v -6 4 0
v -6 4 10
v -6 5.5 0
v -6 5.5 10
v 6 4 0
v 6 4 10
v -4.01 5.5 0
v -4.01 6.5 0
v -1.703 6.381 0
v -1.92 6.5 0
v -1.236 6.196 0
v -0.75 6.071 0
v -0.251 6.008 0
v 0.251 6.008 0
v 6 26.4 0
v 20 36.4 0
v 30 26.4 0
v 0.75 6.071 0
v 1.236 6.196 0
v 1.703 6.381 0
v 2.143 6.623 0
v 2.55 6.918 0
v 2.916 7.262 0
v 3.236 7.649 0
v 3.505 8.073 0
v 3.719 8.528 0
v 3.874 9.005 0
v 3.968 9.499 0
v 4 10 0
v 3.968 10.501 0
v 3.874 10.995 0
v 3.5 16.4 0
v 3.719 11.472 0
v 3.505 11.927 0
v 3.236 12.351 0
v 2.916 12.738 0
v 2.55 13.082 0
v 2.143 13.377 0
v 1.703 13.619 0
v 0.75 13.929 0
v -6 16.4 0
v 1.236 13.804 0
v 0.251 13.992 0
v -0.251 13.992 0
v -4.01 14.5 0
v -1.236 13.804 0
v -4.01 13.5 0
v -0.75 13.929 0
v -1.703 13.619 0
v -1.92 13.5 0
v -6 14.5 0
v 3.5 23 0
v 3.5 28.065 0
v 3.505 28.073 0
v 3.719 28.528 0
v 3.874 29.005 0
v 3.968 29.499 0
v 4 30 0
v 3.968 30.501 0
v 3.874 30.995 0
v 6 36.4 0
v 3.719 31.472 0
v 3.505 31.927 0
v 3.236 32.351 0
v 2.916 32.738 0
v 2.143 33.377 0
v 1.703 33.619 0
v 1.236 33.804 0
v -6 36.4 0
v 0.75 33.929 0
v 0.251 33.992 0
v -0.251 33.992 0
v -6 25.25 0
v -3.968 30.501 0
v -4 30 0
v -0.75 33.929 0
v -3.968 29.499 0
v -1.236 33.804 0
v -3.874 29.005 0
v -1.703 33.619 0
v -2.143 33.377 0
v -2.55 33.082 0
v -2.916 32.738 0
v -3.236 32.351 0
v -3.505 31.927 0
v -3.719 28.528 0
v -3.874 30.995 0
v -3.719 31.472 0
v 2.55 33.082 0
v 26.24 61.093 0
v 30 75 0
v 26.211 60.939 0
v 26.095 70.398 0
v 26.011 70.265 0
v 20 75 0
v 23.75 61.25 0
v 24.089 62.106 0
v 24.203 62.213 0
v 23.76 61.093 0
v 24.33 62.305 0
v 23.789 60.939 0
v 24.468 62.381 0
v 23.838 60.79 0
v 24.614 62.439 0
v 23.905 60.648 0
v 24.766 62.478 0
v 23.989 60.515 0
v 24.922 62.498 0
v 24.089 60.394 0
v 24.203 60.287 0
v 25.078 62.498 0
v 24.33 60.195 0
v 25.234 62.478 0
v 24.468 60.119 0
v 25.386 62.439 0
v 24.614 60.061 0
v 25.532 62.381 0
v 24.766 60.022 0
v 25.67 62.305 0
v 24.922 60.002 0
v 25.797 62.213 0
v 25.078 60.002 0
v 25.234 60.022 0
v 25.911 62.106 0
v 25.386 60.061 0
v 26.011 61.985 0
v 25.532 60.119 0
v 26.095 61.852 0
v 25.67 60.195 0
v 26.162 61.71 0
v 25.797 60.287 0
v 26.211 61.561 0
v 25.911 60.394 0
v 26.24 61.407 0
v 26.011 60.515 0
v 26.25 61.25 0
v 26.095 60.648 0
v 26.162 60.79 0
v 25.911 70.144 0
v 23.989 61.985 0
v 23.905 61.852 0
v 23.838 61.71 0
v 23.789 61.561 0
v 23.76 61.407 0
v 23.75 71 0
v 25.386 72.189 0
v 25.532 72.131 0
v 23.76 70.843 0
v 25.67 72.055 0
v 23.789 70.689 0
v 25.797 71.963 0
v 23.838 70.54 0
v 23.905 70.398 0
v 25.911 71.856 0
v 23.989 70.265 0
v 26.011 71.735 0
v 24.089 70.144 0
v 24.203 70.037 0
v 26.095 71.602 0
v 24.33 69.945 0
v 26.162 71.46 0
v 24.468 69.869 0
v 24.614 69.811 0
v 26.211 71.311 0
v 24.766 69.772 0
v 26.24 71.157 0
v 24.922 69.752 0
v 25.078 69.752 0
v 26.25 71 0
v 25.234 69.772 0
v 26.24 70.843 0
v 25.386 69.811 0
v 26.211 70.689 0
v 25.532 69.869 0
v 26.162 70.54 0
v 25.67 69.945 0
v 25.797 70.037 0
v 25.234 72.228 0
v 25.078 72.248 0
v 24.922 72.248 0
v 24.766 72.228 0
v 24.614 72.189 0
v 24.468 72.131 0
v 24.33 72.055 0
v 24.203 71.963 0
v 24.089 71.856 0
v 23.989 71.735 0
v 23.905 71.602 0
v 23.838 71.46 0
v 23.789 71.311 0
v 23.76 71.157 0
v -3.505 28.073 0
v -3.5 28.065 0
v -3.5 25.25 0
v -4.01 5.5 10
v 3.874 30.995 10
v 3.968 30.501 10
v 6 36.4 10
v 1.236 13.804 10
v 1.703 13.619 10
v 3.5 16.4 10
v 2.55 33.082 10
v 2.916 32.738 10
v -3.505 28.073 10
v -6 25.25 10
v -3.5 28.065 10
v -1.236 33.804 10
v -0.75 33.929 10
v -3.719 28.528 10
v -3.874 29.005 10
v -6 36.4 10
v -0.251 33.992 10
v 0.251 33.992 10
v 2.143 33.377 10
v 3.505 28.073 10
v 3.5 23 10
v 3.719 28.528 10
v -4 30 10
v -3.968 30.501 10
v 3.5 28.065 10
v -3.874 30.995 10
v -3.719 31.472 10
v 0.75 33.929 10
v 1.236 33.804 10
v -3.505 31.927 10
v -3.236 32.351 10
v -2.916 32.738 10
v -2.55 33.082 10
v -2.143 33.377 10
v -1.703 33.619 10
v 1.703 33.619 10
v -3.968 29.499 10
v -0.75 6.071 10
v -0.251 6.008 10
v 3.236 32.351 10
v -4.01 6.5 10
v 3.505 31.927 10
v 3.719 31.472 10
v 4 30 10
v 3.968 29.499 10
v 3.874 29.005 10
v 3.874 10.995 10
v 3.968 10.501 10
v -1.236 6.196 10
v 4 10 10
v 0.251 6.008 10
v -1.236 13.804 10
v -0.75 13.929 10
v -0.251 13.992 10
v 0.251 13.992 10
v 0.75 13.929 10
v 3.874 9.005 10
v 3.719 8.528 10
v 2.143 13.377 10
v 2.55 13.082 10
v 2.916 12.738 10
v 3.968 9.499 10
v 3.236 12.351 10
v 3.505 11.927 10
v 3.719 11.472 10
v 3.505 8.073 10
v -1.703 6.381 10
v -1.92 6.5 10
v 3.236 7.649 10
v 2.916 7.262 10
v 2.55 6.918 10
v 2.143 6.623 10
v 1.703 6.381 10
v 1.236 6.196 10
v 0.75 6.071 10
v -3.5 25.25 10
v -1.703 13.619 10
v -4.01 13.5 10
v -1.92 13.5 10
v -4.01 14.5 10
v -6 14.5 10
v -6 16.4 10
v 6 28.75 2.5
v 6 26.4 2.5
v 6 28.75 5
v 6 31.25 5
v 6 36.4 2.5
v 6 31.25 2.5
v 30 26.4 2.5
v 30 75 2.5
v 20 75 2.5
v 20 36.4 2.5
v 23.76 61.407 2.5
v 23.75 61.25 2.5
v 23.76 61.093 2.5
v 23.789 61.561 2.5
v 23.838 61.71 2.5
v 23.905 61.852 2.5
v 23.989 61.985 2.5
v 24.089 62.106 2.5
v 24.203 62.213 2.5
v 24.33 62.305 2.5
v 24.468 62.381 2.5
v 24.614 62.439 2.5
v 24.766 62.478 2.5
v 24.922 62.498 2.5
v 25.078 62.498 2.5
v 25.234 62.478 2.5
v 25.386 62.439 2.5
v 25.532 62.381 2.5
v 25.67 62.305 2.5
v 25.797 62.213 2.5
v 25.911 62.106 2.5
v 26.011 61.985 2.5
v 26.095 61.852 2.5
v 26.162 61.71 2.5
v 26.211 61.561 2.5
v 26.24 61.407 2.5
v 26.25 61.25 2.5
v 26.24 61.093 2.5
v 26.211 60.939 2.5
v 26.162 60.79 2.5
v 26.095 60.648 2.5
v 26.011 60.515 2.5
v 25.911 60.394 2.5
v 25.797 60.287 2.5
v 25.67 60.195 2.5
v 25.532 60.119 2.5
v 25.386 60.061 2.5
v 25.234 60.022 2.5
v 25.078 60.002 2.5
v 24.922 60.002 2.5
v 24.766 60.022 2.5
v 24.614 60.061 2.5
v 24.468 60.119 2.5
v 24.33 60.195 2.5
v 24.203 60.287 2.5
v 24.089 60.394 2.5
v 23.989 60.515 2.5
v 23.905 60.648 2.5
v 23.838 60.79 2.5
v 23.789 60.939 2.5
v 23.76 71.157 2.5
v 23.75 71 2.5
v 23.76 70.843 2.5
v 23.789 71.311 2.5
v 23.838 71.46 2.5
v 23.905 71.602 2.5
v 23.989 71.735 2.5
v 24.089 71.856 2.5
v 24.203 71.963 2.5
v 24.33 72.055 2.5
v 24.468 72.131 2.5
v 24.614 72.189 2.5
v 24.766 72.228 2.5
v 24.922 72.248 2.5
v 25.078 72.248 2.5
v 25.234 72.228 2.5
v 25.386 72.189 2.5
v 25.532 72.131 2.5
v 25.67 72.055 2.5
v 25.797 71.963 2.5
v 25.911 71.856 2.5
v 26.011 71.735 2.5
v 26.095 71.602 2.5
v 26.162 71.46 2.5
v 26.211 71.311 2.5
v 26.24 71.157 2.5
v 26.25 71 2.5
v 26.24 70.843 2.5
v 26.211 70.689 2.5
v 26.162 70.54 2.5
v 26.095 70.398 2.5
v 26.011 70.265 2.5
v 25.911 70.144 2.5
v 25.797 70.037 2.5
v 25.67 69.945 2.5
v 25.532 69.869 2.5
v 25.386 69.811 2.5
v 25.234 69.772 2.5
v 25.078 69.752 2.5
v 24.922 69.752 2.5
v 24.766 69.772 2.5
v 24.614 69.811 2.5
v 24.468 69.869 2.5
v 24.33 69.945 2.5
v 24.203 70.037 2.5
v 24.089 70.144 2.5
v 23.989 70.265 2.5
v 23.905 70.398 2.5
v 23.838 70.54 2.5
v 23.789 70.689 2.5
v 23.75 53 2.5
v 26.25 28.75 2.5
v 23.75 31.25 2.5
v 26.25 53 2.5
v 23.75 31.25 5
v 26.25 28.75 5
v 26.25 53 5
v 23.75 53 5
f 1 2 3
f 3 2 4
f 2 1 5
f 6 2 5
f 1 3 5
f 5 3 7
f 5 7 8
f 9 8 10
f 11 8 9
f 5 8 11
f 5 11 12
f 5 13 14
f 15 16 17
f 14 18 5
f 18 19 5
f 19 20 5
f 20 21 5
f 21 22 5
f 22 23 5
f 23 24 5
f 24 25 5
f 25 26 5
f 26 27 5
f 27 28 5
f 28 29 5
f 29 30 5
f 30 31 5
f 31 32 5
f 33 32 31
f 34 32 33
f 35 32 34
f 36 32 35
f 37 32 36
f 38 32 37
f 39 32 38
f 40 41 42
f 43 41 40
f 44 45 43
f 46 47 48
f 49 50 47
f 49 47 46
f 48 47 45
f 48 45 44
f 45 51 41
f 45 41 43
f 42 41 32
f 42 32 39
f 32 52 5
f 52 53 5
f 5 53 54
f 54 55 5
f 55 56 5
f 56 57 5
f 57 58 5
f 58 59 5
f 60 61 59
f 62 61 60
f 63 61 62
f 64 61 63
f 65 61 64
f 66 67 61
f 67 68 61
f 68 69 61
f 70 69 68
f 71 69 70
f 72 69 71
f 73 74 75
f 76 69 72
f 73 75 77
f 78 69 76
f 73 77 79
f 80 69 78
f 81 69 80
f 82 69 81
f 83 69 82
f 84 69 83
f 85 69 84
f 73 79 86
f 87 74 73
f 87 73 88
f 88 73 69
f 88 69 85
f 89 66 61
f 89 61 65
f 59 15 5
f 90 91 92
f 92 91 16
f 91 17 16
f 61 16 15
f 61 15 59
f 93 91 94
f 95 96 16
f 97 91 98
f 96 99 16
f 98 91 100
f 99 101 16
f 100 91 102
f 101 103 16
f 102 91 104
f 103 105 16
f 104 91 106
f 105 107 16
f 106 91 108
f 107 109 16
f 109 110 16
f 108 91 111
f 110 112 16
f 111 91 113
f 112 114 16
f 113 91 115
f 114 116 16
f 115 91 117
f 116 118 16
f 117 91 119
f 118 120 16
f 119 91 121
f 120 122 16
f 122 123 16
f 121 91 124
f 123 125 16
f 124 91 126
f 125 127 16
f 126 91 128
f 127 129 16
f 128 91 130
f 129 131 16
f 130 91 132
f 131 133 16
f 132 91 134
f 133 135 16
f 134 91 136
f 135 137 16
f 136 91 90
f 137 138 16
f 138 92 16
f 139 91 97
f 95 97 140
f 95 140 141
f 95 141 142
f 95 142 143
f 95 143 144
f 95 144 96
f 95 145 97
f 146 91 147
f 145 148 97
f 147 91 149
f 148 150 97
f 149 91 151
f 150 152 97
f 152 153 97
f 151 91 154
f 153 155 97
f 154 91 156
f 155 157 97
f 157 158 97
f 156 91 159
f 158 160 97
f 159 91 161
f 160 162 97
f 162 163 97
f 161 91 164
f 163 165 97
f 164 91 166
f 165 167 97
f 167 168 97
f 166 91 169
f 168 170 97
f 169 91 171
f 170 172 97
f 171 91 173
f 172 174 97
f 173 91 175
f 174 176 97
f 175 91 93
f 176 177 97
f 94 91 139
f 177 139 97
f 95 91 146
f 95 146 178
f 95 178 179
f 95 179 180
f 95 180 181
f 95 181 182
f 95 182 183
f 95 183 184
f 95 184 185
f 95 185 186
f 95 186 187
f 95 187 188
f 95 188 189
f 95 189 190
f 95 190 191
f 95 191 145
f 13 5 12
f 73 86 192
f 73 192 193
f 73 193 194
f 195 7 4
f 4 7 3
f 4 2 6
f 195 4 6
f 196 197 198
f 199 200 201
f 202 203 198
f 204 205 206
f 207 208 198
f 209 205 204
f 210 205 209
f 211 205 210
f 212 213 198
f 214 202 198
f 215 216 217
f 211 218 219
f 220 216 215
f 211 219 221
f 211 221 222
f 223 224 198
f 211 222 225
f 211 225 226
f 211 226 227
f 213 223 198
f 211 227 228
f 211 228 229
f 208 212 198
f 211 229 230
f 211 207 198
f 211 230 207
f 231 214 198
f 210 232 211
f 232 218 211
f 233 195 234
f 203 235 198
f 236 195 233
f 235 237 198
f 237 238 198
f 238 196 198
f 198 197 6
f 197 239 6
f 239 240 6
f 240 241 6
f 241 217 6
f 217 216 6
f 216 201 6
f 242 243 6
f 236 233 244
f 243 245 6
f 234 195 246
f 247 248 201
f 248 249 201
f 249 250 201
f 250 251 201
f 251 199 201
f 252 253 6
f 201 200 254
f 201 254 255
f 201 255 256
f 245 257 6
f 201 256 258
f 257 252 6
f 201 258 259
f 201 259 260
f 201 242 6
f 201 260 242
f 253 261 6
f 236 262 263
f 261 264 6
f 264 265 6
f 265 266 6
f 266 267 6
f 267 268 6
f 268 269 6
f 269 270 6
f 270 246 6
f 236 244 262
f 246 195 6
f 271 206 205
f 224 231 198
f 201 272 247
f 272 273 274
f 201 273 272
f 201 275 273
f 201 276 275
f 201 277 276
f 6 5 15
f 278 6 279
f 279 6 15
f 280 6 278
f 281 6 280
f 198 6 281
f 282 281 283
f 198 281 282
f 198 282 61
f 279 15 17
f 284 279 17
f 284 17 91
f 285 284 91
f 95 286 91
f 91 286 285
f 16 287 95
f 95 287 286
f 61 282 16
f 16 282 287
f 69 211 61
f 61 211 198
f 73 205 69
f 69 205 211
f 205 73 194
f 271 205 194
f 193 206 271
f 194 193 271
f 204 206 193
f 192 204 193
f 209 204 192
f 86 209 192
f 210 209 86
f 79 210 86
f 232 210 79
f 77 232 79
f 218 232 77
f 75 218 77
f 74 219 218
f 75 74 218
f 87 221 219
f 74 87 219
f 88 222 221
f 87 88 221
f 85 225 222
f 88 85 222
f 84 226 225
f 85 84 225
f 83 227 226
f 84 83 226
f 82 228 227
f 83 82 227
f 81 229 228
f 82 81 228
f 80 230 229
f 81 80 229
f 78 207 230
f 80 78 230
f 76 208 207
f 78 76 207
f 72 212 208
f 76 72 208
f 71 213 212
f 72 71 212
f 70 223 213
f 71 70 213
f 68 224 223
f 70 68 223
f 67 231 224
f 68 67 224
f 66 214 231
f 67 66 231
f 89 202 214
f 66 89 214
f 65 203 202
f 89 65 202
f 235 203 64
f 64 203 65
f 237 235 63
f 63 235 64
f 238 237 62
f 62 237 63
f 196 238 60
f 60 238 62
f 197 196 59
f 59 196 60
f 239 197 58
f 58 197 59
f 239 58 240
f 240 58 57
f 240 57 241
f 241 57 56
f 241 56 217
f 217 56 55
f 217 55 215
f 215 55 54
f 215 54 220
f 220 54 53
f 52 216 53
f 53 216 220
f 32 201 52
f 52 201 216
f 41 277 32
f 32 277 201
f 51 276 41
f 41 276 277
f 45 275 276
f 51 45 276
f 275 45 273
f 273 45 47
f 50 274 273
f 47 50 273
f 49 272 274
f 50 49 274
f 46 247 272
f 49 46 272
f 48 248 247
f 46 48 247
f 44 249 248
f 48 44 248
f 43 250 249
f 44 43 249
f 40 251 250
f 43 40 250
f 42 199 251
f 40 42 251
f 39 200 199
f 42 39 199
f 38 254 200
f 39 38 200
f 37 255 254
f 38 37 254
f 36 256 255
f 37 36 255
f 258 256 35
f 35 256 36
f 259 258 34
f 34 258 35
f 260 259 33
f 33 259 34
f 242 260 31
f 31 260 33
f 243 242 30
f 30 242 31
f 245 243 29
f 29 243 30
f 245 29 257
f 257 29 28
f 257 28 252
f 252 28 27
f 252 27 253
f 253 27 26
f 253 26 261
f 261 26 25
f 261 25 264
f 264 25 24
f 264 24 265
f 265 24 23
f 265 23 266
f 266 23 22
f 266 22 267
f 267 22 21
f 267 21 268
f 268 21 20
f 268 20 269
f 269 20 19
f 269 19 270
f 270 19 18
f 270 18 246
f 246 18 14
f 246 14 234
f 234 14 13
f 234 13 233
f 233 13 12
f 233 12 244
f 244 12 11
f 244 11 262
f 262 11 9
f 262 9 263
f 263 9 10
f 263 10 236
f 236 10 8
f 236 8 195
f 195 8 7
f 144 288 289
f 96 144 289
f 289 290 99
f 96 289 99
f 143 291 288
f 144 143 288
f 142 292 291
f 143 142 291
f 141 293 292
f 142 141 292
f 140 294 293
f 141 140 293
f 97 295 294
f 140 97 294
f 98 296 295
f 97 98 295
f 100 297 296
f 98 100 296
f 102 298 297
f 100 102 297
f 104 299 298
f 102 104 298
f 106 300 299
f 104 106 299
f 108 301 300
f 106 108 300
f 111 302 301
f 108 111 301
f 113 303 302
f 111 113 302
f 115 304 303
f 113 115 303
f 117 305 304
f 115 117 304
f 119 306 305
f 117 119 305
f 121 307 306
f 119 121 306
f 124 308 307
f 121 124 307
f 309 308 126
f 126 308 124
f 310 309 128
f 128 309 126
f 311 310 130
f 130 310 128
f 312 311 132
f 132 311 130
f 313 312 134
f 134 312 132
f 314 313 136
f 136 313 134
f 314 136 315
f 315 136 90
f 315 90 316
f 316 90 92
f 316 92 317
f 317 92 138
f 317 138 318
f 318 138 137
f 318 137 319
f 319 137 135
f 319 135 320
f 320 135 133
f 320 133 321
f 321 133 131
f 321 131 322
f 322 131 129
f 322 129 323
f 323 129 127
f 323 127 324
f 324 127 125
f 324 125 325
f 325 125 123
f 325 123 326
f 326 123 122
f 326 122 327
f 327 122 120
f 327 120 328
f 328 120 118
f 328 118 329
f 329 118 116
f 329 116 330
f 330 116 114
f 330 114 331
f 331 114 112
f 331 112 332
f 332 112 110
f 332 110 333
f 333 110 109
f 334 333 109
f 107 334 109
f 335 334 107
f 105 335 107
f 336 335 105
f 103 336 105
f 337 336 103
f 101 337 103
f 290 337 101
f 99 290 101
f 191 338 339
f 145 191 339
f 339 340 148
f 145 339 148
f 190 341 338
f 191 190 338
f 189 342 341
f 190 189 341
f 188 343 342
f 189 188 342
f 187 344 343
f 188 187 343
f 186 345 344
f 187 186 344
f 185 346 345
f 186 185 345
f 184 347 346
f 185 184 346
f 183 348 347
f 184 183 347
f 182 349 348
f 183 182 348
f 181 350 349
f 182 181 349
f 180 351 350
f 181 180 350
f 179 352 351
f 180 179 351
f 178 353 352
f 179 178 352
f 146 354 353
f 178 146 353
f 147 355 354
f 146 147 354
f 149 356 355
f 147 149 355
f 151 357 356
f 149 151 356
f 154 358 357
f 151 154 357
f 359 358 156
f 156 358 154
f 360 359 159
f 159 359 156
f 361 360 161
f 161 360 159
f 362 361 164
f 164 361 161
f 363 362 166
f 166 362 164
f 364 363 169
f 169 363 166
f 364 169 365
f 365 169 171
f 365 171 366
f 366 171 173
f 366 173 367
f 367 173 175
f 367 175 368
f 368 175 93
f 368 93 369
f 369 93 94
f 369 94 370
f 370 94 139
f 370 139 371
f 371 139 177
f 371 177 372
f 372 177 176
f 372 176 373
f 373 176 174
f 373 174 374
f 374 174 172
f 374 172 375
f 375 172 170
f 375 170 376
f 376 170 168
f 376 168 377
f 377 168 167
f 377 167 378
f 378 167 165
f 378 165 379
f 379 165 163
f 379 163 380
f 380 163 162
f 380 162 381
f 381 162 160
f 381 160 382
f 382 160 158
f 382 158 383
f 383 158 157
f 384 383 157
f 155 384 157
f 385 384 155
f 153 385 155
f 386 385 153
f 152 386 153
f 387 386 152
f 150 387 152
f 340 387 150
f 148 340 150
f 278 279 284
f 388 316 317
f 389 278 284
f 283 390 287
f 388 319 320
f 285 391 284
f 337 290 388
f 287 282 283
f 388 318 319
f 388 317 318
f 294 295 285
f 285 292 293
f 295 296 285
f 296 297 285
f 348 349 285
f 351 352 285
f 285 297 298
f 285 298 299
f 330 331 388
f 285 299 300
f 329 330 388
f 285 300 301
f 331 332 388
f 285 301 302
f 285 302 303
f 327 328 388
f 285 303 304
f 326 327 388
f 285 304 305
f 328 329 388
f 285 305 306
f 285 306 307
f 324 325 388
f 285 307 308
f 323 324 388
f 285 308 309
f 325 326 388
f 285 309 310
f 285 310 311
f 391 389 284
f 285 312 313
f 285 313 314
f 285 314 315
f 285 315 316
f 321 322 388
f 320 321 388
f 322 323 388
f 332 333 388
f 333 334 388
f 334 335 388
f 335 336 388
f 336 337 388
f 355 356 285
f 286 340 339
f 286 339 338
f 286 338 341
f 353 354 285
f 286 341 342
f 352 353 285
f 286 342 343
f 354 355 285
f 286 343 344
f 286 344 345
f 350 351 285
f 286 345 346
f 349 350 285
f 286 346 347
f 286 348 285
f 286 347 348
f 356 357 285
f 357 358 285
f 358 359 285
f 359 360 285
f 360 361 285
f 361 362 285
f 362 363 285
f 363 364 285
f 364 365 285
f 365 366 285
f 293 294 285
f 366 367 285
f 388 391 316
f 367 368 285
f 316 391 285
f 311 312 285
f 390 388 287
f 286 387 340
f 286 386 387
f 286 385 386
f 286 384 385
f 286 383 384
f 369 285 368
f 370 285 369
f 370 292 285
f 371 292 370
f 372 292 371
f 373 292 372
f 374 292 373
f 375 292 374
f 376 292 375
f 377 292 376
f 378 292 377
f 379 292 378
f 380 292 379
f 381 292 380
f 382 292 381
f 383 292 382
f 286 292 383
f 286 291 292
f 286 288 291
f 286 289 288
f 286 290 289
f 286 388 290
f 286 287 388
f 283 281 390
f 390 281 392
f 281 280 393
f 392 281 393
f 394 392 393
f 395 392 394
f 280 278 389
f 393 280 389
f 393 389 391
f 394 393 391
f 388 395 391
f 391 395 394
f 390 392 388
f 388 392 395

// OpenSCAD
//--------------------------------------------------------------------//
// Prusa i3 clip on y endstop holder                                  //
//--------------------------------------------------------------------//
// Author        : Patrick Henry                                      //
// Email         : phenry@pontetec.com                                //
// License       : MIT - http://opensource.org/licenses/MIT           //
//--------------------------------------------------------------------//
// With the Prusa i3 from 3dprinterczar.com, the y endstop has to be
// placed in such a way that it dramatically reduces the available
// print area. In my desire to fix this, I was inspired by the snap on
// motor mount found here: http://www.thingiverse.com/thing:21716
// Of course, that mount is made for a different arrangement of the
// frame on which the print bed sits, so it won't work for this
// particular model, but the idea can be adapted for an endstop holder
// that does.
// This increased my usable Y area from 144.5mm to 184mm. Since the
// glass plate is 200mm, I could push it a little further, but it's
// good enough for my needs.
//--------------------------------------------------------------------//

//--------------------------------------------------------------------//
// Useful constants                                                   //
//--------------------------------------------------------------------//

//--------------------------------------------------------------------//
// Utility module: gridboard                                          //
//--------------------------------------------------------------------//

$fn=50;
eps=0.01;
wall=2.5;
z=wall * 4;
slip = 0.5;
rod1_y = 10;
rod2_y = 30;
rod_r = 4;
rod2_to_top = 45;
module y_corner()
{
  translate([-11,0,-20])
  {
    rotate([-90,270,0])
    {
      color([1,0,0])
      {
        import("y-corner.stl");
      }
    }
  }
  translate([0,rod1_y,-50])
  {
    %cylinder(r=rod_r, h=100);
  }
  translate([0,rod2_y,-50])
  {
    %cylinder(r=rod_r, h=100);
  }
}

module snap_mount()
{
  difference()
  {
    union()
    {
      translate([4-slip,10-4+slip-wall,0])
        cube([wall, 32.4, z]);
      translate([-6,10-4+slip-wall,0])
        cube([12, 2*(wall-slip)+8.4, z]);
      translate([-6,30-4+slip-wall/2,0])
        cube([12, 3*wall/2-2*slip+8.4, z]);
    }
    translate([-6-eps,10-4+slip,-eps])
    {
      cube([6, 2*(rod_r-slip), z+2*eps]);
      translate([0,-1,0])
        cube([2, 2*(rod_r-slip)+2, z+2*eps]);
    }
    translate([0-4+slip,23,-eps])
    {
      cube([2*(rod_r-slip), 6, z+2*eps]);
      translate([-1,0,0])
        cube([2*(rod_r-slip)+1, 2, z+2*eps]);
    }
    translate([0,rod1_y,-eps])
    {
      cylinder(r=rod_r, h=z + 2*eps);
    }
    translate([-5,20.75,-eps])
    {
      cylinder(r=rod_r, h=z + 2*eps);
    }
    translate([0,rod2_y,-eps])
    {
      cylinder(r=rod_r, h=z + 2*eps);
    }
  }
}

module endstop_plate()
{
  difference()
  {
    union()
    {
      translate([5,26.4,0])
        cube([25, 10, wall]);
      translate([20,30,0])
        cube([10, rod2_to_top, wall]);
      translate([5,30-wall/2,0])
        cube([20+wall/2,wall, wall*2]);
      translate([25-wall/2,30,0])
        cube([wall, rod2_to_top-22, wall*2]);
    }

    translate([25,30+rod2_to_top-4,-eps])
    {
      cylinder(r=1.25, h=wall+2*eps);
    }
    translate([25,30+rod2_to_top-4-9.75,-eps])
    {
      cylinder(r=1.25, h=wall+2*eps);
    }
  }
}

//y_corner();
snap_mount();
endstop_plate();
